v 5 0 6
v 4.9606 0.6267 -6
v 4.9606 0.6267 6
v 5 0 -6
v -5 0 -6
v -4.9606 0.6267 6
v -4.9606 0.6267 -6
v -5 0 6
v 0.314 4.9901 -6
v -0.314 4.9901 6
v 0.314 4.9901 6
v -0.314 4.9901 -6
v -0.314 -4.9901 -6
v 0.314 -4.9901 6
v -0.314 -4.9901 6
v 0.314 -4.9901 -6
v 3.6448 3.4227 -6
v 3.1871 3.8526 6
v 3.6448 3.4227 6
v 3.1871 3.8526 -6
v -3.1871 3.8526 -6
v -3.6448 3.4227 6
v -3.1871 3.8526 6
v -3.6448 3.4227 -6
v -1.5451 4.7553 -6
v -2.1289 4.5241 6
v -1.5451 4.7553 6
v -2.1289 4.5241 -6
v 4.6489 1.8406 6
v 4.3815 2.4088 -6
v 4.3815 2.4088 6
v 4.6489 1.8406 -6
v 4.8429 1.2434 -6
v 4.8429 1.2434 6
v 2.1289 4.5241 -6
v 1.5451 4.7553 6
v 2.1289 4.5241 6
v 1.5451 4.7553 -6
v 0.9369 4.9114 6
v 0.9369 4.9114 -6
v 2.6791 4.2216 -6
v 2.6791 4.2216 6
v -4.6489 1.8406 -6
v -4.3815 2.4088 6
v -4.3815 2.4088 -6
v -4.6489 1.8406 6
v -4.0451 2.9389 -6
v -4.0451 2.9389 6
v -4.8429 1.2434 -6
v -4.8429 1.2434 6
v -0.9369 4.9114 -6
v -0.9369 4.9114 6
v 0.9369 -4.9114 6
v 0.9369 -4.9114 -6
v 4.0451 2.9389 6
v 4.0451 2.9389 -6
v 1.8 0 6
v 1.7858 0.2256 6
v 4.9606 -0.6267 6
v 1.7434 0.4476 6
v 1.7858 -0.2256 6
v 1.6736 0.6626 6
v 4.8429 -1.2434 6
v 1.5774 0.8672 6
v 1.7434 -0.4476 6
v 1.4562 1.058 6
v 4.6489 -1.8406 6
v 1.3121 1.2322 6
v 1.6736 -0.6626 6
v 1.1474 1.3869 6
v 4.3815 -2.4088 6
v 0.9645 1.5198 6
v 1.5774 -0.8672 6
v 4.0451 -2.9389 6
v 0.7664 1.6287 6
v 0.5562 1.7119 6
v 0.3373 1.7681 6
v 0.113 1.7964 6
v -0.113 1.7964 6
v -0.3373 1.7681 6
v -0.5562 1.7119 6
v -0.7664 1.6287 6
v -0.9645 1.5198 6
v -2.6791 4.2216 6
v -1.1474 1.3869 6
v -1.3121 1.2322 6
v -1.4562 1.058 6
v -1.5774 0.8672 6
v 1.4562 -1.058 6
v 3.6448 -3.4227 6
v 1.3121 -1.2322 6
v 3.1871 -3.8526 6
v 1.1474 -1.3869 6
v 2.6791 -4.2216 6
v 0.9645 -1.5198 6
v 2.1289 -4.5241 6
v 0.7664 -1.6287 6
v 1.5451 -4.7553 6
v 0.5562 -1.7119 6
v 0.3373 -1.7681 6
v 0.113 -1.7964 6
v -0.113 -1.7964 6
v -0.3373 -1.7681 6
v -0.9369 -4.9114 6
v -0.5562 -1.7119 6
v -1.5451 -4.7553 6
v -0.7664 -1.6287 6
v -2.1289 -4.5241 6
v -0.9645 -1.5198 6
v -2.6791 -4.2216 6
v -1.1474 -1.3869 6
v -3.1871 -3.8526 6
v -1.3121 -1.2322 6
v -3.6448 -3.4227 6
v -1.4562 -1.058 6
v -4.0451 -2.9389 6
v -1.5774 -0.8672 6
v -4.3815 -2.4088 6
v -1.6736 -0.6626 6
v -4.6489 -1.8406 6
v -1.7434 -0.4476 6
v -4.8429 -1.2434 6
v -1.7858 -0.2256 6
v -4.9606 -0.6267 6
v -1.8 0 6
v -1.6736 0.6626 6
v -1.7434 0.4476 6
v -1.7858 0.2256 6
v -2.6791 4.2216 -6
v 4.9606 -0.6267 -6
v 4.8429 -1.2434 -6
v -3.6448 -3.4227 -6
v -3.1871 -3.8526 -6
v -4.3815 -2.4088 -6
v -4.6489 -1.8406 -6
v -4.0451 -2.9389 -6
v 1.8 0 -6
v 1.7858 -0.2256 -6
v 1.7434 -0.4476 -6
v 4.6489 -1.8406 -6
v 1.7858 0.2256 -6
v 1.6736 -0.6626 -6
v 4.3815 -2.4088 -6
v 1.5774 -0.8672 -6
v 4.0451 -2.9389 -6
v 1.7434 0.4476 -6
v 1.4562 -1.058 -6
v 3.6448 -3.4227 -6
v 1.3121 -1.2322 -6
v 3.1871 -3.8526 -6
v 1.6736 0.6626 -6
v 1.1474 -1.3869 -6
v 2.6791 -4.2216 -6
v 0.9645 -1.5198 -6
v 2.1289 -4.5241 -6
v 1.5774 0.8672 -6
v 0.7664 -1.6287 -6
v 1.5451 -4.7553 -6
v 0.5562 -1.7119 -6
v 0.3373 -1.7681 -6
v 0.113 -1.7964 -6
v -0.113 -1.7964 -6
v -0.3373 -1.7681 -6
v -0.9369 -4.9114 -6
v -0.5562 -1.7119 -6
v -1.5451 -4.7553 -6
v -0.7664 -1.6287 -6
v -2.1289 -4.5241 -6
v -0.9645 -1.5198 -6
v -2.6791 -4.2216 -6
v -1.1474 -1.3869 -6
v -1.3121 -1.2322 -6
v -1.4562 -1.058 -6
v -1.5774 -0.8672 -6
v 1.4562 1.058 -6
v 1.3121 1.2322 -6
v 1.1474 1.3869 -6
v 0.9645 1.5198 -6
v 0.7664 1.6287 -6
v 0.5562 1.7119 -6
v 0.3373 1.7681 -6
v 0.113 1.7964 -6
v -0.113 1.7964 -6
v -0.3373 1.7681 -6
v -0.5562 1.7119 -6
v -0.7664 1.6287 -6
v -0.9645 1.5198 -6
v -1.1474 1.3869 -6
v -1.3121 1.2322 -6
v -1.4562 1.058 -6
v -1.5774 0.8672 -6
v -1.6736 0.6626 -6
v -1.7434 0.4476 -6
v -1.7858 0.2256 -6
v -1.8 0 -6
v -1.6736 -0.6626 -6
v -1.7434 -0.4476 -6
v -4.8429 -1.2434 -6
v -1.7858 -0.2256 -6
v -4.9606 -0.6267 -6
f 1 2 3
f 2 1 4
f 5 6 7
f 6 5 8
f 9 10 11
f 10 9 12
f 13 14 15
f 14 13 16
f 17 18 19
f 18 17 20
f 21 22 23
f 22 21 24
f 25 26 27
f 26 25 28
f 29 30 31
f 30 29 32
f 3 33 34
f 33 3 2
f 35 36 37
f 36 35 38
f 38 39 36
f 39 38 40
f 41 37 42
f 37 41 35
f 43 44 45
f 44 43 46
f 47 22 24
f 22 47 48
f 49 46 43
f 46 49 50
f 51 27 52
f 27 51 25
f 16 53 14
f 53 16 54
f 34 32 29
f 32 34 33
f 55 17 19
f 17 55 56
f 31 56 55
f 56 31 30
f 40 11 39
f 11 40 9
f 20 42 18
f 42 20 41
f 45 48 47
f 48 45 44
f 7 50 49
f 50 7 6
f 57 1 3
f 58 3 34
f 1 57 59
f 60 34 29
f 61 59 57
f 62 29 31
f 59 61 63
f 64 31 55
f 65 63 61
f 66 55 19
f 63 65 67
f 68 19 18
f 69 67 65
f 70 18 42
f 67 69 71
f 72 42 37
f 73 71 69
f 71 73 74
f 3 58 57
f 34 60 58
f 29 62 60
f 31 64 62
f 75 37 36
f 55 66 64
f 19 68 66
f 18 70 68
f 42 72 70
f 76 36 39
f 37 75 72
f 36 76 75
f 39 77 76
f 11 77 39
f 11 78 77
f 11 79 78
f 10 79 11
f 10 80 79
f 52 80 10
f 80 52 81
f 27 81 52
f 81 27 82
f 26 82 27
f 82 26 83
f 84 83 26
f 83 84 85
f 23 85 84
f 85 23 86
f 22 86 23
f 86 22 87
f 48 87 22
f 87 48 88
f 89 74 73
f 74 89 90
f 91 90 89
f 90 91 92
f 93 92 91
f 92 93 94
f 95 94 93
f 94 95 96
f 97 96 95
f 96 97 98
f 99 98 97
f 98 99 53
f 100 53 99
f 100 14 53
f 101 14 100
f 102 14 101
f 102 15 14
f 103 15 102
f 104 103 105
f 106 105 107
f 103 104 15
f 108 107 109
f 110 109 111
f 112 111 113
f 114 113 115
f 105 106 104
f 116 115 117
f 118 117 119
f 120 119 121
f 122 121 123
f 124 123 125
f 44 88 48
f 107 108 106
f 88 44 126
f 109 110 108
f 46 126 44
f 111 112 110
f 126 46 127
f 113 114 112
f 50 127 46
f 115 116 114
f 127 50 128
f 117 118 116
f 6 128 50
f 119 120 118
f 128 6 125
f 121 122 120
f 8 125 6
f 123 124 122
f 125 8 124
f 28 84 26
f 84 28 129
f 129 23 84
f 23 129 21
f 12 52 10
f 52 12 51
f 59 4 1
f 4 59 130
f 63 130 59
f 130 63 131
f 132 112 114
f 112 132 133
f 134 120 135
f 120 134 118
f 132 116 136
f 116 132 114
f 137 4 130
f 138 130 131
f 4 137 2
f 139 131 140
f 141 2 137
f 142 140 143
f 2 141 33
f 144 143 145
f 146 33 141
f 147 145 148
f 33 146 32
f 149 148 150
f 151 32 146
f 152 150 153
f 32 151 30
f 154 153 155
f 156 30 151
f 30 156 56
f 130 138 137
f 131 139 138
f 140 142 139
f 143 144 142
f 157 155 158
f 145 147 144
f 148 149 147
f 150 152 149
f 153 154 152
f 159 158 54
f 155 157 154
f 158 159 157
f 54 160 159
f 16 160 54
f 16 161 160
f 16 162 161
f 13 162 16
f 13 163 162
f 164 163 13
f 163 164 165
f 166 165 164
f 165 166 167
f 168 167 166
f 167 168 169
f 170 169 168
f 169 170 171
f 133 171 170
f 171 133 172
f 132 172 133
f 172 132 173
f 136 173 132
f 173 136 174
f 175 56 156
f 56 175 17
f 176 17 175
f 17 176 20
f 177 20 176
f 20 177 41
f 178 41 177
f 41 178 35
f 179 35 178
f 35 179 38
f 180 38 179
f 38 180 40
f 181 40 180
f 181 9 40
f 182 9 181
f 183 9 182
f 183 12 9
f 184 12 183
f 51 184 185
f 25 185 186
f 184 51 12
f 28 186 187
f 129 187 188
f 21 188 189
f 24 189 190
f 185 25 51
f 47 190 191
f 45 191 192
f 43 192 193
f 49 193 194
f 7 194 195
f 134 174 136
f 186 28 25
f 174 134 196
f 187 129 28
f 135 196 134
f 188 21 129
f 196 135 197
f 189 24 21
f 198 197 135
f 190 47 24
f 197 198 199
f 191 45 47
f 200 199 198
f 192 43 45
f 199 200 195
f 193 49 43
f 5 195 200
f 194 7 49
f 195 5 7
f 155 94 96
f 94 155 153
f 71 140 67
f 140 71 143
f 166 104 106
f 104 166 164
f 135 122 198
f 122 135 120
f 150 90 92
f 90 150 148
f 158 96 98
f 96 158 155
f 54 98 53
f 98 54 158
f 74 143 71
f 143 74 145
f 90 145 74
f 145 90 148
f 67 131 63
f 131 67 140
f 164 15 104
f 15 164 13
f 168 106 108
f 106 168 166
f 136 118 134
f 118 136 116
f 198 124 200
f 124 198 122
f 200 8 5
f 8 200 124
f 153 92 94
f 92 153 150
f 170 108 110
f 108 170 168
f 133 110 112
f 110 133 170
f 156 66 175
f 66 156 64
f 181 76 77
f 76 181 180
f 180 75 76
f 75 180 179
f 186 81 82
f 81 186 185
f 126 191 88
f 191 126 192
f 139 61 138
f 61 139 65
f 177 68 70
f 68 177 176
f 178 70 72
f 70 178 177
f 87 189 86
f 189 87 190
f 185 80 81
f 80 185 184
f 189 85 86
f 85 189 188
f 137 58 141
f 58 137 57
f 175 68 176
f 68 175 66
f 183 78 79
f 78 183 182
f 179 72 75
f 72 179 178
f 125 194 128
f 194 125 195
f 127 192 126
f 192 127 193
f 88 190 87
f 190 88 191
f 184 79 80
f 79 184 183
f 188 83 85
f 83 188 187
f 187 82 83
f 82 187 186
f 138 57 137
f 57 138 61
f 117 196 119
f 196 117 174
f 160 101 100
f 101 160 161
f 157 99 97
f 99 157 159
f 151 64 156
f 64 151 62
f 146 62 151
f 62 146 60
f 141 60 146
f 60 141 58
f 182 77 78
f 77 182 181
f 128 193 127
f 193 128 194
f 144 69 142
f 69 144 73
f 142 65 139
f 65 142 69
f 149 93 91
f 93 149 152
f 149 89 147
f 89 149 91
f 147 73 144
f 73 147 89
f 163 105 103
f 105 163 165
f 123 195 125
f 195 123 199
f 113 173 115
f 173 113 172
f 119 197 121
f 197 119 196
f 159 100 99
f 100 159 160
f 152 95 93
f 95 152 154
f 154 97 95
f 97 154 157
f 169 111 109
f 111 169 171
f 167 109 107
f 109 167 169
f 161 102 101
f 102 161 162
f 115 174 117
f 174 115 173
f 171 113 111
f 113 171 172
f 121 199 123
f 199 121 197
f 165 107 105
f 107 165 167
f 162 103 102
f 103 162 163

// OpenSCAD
$fn = 50;


difference() {
	union() {
		translate(v = [0, 0, -6.0000000000]) {
			cylinder(h = 12, r = 5.0000000000);
		}
	}
	union() {
		translate(v = [0, 0, -100.0000000000]) {
			cylinder(h = 200, r = 1.8000000000);
		}
	}
}
